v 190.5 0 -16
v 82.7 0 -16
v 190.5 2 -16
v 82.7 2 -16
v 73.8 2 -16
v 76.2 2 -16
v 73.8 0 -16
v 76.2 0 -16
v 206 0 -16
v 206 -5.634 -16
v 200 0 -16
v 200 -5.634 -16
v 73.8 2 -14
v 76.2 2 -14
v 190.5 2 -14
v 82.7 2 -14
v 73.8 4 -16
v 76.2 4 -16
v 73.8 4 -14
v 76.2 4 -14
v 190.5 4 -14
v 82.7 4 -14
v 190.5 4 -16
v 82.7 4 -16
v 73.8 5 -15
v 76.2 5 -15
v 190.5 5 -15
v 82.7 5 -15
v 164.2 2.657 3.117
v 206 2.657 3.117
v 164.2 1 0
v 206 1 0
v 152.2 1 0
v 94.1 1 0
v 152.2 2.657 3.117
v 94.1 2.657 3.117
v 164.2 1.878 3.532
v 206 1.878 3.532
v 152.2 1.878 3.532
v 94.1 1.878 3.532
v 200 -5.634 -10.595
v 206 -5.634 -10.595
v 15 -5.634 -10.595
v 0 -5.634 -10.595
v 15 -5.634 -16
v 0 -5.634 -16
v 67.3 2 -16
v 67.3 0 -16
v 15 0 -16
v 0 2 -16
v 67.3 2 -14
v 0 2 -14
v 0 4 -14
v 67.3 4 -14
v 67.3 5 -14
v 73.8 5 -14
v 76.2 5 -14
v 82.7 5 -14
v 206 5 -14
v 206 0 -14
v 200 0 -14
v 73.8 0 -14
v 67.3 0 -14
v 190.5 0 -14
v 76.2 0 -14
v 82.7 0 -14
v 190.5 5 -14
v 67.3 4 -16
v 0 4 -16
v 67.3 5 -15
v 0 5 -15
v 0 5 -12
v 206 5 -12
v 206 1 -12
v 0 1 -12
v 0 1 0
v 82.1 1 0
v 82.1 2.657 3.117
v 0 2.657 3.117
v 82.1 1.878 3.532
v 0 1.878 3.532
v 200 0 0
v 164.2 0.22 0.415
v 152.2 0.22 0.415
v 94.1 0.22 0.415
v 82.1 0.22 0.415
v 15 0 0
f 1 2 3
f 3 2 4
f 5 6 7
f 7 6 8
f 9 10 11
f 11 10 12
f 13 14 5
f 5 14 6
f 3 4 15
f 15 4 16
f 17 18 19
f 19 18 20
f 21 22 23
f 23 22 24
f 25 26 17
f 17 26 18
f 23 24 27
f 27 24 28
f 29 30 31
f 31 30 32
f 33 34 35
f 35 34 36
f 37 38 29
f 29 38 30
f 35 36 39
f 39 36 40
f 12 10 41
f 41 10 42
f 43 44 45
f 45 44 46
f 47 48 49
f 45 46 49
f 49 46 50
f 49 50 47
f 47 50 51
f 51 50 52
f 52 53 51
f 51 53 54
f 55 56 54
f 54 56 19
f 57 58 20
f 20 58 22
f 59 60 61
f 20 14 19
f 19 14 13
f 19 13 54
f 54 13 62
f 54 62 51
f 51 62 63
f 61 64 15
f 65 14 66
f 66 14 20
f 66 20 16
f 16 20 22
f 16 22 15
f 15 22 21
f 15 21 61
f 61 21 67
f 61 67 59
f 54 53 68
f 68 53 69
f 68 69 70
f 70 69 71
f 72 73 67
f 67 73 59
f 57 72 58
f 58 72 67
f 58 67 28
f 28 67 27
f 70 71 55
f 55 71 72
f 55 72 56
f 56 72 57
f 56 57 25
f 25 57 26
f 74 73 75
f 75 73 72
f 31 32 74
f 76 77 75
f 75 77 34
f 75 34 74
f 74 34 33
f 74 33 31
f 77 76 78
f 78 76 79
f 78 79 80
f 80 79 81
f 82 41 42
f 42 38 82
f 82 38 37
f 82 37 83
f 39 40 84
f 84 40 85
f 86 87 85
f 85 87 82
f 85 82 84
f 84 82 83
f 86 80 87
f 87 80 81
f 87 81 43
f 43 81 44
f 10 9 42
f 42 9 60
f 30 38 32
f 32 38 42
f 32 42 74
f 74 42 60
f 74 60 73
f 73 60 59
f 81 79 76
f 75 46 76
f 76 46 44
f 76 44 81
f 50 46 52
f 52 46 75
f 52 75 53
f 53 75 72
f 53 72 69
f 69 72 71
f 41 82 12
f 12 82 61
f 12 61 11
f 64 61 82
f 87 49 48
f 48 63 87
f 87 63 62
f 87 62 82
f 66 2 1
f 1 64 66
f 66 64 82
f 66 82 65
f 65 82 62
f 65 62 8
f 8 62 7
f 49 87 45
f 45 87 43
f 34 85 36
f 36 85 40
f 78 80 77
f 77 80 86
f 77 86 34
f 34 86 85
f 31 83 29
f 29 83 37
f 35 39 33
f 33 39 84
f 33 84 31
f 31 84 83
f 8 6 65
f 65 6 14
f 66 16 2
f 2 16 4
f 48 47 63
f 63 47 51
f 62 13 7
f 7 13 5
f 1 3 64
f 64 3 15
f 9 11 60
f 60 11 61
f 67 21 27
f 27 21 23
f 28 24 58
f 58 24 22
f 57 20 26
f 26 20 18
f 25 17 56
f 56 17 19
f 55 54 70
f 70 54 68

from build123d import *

# Parameters (mm, degrees)
EXTRUDE_PROFILE_DEPTH = 206
SKETCH6_W             = 185
SKETCH6_H             = 5.633658753
AIR_SPACE_DEPTH       = 45
SKETCH7_W             = 12
SKETCH7_H             = 3.530528437
TAB_CUTS_DEPTH        = 8.515248173
SKETCH8_W             = 15.5
SKETCH8_H             = 10
SKETCH8_W_2           = 6.5
CUT_EXTRUDE1_DEPTH    = 2


with BuildPart() as part:
    # Sketch1 → Extrude profile (new body)
    with BuildSketch(Plane(origin=(0, 0, 0), x_dir=(0, 0, -1), z_dir=(1, 0, 0))):
        Polygon((0, 1), (12, 1), (12, 4), (12, 5), (15, 5), (16, 4), (14, 4), (14, 2), (16, 2), (16, -5.633658753), (10.595371114, -5.633658753), (0, 0), (-3.531790371, 1.877886251), (-3.117271585, 2.657482703), align=None)
    extrude(amount=EXTRUDE_PROFILE_DEPTH)

    # Sketch6 → Air space (cut)
    with BuildSketch(Plane(origin=(0, 0, -16), x_dir=(-1, 0, 0), z_dir=(0, 0, -1))):
        with Locations((-107.5, -2.816829377)):
            Rectangle(SKETCH6_W, SKETCH6_H)
    extrude(amount=-AIR_SPACE_DEPTH, mode=Mode.SUBTRACT)

    # Sketch7 → Tab cuts (cut, through all)
    with BuildSketch(Plane(origin=(0, 0.779596452, -0.414518786), x_dir=(1, 0, 0), z_dir=(0, 0.882947593, -0.469471563))):
        with Locations((158.2, -2.234735781)):
            Rectangle(SKETCH7_W, SKETCH7_H)
        with Locations((88.1, -2.234735781)):
            Rectangle(SKETCH7_W, SKETCH7_H)
    extrude(amount=-TAB_CUTS_DEPTH, mode=Mode.SUBTRACT)

    # Sketch8 → Cut-Extrude1 (cut)
    with BuildSketch(Plane(origin=(0, 0, -16), x_dir=(-1, 0, 0), z_dir=(0, 0, -1))):
        with Locations((-198.25, 5)):
            Rectangle(SKETCH8_W, SKETCH8_H)
        with Locations((-70.55, 5)):
            Rectangle(SKETCH8_W_2, SKETCH8_H)
        with Locations((-79.45, 5)):
            Rectangle(SKETCH8_W_2, SKETCH8_H)
    extrude(amount=-CUT_EXTRUDE1_DEPTH, mode=Mode.SUBTRACT)


solid = part.part
